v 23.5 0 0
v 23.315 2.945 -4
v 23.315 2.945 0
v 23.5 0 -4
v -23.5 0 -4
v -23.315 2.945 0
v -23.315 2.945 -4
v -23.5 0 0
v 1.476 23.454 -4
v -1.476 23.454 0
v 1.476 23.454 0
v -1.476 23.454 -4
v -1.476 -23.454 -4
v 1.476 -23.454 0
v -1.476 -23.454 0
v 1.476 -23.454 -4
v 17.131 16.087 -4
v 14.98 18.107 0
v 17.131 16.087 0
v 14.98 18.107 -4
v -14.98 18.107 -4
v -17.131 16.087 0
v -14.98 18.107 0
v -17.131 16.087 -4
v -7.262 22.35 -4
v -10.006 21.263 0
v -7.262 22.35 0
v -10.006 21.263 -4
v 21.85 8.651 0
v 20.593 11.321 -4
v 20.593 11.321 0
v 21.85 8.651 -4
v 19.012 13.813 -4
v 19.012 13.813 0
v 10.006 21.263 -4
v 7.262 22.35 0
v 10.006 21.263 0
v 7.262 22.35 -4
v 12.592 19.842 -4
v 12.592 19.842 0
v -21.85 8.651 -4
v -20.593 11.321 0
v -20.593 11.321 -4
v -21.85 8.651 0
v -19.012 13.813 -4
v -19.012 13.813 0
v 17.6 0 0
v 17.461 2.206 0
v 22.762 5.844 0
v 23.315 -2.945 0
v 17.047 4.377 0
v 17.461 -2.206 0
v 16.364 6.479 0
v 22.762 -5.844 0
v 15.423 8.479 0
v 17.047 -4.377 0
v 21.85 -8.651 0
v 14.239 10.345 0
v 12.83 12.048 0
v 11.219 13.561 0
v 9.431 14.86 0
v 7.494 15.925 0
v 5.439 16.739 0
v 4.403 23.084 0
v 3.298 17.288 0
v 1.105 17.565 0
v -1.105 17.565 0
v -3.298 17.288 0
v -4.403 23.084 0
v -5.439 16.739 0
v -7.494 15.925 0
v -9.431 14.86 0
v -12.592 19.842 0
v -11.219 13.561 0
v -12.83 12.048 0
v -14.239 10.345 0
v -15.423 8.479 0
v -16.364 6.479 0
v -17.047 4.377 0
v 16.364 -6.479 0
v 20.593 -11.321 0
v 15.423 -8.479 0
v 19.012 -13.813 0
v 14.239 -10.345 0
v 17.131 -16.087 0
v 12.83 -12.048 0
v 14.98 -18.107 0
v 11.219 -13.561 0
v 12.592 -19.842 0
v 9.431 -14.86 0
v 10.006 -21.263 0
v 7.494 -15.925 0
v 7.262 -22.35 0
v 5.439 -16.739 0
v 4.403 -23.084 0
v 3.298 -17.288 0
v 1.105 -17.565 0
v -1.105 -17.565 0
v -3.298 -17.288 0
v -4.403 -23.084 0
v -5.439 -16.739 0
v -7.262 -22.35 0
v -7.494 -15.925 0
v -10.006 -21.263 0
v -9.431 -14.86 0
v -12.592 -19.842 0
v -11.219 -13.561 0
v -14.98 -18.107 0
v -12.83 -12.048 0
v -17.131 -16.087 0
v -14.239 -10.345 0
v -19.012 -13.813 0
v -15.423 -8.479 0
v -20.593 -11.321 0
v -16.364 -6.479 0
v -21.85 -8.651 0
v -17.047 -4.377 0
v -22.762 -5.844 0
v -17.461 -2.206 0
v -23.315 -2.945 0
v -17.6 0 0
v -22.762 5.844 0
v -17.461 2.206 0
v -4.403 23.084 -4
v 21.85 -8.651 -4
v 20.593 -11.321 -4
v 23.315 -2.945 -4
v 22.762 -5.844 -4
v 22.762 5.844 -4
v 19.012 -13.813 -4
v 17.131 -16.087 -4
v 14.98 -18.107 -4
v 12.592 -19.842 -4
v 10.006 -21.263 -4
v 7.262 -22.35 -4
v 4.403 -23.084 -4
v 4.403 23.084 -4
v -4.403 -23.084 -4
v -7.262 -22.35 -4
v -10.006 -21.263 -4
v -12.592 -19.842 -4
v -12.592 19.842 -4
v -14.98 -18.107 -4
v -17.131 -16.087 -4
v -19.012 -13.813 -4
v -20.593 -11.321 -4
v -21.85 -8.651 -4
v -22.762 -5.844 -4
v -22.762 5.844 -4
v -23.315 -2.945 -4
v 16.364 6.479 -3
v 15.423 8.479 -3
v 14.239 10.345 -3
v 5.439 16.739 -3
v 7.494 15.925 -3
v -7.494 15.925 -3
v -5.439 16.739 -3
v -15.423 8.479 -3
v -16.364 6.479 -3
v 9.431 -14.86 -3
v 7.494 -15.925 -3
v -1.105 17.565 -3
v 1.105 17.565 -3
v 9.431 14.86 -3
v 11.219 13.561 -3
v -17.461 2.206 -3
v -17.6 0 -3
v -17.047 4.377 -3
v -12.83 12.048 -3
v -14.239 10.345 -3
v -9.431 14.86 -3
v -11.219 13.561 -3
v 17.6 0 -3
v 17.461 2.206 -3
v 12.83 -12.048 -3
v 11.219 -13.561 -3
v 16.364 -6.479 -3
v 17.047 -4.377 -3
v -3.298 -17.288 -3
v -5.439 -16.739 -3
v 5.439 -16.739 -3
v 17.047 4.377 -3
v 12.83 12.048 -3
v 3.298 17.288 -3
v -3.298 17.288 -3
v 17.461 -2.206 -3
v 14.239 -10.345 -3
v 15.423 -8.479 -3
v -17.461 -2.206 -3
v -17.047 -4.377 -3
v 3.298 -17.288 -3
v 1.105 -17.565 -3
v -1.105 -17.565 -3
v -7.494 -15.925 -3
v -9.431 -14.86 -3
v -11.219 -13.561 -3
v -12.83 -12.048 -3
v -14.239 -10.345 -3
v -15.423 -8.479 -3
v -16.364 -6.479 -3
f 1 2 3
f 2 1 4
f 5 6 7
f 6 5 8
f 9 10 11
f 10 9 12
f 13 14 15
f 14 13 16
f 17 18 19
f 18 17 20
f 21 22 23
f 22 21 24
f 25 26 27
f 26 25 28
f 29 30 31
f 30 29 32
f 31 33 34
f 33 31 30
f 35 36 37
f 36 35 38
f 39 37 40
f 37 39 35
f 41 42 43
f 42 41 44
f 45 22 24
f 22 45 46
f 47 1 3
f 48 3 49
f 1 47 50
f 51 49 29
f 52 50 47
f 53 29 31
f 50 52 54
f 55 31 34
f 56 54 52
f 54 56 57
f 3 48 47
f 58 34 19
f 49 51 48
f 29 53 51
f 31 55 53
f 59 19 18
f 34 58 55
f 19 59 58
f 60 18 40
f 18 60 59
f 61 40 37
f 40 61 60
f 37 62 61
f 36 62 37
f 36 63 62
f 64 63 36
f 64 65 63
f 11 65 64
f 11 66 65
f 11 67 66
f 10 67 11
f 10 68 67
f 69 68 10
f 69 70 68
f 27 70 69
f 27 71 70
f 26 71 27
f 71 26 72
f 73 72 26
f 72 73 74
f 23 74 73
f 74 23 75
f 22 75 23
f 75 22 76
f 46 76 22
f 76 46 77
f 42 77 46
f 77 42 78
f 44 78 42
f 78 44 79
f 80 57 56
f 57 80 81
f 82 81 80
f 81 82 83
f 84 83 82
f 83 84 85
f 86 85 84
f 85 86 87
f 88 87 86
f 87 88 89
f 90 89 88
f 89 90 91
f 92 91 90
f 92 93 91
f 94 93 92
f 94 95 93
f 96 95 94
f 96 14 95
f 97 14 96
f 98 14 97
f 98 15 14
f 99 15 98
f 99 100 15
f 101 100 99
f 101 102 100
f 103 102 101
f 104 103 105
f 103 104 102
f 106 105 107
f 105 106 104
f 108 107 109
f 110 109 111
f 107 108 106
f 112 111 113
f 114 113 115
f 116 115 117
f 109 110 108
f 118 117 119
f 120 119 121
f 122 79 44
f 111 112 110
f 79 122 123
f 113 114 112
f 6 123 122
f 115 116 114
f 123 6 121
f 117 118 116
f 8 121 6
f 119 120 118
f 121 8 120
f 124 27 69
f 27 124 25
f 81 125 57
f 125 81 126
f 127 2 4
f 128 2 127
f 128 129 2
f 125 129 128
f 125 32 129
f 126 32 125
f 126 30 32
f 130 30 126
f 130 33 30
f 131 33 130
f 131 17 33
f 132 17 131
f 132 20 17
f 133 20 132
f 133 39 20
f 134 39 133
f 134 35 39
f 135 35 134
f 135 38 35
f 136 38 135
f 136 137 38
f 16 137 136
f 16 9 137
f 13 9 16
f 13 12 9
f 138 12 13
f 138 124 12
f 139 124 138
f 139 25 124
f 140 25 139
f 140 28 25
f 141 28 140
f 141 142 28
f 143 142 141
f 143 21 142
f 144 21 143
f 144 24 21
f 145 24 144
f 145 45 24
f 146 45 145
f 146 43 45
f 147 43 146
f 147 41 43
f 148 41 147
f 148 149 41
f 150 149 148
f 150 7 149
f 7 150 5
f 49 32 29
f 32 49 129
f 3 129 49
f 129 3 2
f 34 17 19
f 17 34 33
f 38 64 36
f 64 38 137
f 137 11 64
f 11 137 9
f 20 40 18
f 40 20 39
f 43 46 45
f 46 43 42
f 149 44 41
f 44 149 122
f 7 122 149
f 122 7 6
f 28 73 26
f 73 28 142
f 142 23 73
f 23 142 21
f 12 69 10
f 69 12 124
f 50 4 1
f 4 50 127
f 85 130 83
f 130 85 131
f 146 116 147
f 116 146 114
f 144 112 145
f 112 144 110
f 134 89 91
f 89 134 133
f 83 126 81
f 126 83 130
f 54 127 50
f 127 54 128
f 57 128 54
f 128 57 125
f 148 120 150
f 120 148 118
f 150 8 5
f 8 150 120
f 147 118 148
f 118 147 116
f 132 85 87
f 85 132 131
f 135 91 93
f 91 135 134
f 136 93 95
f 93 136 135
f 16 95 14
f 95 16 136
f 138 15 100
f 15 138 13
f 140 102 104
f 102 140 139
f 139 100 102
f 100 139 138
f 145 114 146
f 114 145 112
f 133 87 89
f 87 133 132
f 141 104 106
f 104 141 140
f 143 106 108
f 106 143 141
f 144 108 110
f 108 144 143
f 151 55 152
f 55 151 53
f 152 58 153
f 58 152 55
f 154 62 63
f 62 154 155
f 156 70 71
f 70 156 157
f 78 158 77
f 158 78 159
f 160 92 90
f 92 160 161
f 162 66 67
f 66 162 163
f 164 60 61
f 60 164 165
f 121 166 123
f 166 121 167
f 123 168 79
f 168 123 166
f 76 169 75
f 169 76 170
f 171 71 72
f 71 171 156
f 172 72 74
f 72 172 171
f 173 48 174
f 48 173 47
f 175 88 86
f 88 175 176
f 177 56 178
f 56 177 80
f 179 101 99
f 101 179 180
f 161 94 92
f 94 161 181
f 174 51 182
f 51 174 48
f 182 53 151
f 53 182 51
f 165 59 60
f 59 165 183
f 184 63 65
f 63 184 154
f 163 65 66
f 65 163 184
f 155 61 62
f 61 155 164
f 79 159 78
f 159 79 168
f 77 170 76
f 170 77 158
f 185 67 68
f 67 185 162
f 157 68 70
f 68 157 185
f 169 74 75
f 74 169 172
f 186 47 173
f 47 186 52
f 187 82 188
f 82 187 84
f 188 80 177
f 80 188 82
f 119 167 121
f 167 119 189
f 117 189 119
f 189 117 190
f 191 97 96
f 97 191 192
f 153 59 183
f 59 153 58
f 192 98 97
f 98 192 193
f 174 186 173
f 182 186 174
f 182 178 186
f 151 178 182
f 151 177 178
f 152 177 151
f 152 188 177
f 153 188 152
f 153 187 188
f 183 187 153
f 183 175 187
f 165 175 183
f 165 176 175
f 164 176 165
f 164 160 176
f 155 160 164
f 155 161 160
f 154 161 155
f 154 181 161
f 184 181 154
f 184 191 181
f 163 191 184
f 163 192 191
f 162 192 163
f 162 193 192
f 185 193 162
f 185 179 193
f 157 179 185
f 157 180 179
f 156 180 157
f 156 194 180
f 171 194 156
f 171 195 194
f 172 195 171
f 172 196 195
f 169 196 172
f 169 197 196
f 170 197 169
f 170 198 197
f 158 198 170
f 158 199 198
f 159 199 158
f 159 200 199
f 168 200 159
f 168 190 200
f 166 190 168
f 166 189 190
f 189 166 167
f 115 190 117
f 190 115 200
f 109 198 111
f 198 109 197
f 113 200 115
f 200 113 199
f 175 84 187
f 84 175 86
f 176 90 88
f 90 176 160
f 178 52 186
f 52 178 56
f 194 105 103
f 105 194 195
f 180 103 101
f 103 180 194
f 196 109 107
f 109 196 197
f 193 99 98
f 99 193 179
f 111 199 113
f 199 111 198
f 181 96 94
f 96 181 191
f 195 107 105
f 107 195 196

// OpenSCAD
$fn = 50;


difference() {
	union() {
		translate(v = [0, 0, -4.0000000000]) {
			cylinder(h = 4, r = 23.5000000000);
		}
	}
	union() {
		#translate(v = [0, 0, -3.0000000000]) {
			cylinder(h = 3, r = 17.6000000000);
		}
	}
}
